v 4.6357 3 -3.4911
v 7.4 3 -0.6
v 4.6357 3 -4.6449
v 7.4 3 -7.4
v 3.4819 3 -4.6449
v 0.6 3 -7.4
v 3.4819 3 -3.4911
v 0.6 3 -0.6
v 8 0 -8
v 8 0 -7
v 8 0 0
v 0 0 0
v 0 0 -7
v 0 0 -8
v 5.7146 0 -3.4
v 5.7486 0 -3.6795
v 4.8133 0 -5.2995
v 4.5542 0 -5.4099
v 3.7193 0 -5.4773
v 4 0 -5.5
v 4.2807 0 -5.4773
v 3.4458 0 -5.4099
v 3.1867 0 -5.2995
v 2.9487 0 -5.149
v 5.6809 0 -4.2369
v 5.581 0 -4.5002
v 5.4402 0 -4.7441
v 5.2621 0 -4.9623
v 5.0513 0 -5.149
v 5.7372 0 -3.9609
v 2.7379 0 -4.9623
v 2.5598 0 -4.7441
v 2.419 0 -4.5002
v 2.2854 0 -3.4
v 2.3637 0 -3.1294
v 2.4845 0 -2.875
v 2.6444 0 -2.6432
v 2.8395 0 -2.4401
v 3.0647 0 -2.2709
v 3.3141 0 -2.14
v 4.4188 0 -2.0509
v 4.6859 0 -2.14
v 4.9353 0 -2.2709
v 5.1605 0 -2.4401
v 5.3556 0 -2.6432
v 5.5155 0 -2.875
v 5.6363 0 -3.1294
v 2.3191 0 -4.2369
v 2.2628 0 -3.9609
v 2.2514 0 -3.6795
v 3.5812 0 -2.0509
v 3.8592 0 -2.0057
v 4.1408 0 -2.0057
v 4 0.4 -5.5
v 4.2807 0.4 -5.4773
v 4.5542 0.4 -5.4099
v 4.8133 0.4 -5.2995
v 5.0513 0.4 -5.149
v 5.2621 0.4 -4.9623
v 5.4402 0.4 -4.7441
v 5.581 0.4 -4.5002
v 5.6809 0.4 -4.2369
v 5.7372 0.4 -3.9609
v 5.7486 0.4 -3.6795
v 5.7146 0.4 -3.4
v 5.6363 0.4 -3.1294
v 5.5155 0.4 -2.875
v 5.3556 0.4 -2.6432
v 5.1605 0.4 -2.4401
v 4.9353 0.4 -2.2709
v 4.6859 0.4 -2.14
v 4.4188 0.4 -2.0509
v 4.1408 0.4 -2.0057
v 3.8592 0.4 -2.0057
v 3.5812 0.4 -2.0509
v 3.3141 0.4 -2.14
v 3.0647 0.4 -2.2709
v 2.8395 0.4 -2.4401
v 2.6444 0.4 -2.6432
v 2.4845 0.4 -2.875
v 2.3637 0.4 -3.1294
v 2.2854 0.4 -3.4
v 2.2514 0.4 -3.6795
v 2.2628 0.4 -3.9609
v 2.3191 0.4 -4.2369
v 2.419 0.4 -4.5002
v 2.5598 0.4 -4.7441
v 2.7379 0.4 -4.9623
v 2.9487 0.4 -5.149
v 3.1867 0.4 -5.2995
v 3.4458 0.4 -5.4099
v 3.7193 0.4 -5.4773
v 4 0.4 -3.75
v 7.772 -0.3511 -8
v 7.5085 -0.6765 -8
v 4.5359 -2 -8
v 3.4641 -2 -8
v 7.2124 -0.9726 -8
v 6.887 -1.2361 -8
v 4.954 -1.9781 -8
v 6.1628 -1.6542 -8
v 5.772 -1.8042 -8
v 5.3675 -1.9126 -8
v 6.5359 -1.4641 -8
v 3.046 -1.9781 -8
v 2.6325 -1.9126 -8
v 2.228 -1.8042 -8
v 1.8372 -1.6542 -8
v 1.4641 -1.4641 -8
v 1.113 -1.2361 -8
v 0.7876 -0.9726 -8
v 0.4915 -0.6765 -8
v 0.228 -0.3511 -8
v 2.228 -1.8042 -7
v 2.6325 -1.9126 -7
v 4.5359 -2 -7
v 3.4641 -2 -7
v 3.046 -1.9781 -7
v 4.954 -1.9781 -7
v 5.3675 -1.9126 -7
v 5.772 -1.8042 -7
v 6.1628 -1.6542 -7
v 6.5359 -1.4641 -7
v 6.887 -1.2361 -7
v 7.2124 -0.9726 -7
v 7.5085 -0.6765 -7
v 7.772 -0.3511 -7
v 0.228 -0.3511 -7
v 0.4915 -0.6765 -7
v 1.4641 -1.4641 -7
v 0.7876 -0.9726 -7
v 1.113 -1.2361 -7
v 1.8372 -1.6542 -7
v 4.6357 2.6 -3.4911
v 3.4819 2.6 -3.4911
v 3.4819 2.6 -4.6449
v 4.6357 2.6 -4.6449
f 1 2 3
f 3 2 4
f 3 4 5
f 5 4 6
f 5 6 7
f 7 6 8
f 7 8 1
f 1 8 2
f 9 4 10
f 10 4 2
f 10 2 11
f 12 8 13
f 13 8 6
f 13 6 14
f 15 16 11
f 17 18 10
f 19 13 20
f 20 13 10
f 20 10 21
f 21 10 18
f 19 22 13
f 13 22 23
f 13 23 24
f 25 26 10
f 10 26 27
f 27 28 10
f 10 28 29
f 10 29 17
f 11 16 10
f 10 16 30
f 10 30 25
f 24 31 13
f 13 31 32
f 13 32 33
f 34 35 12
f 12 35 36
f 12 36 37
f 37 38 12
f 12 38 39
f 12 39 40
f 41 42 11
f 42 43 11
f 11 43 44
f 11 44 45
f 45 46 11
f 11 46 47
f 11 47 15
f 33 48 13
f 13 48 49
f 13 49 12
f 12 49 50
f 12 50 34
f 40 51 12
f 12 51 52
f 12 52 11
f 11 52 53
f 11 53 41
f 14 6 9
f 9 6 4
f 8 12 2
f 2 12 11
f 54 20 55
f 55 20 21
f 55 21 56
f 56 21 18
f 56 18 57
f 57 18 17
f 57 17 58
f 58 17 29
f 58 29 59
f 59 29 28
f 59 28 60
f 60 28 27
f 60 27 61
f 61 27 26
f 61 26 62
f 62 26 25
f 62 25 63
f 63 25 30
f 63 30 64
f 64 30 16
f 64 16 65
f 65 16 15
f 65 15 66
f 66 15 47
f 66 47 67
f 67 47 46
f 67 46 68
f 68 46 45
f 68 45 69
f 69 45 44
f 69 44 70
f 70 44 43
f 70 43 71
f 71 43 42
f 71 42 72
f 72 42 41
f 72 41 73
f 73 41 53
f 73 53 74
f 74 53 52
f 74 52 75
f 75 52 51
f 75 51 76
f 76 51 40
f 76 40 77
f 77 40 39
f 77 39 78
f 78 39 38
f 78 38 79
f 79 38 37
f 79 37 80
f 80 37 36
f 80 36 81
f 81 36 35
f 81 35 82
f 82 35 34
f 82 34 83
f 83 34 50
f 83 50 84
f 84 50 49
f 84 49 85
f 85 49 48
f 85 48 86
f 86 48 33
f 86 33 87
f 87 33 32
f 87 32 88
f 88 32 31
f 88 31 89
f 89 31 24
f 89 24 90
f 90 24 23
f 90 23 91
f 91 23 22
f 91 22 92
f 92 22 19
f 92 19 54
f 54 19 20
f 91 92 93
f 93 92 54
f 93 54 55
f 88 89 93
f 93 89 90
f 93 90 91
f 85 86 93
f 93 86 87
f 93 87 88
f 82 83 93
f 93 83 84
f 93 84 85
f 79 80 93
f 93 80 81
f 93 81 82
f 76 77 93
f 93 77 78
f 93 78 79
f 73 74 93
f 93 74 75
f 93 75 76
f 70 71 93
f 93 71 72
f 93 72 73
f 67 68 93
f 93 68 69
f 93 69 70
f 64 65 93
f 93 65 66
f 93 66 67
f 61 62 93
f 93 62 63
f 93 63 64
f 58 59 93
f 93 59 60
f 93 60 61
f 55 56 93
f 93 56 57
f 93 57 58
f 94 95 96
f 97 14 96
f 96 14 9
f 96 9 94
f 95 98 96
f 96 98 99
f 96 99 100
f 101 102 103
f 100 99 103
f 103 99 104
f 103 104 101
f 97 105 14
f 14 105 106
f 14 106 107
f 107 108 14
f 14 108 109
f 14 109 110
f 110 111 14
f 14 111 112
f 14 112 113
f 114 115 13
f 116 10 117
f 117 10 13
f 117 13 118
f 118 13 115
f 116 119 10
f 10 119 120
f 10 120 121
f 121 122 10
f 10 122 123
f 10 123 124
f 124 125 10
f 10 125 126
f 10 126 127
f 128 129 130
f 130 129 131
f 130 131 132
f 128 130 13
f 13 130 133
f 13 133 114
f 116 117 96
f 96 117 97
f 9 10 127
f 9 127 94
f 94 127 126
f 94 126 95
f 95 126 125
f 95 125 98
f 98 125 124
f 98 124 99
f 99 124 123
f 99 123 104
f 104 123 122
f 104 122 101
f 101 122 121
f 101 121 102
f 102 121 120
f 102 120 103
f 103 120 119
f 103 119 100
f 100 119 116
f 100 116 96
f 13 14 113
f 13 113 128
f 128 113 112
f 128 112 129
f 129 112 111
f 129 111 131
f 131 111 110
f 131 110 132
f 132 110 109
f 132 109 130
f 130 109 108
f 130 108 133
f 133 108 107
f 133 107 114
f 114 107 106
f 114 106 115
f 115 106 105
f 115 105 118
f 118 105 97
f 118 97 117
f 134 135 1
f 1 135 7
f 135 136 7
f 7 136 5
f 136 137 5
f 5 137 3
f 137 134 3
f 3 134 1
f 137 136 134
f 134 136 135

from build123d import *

# Parameters (mm, degrees)
SKETCH1_W               = 8
SKETCH1_H               = 8
BOSS_EXTRUDE1_DEPTH     = 3
CUT_EXTRUDE1_DEPTH      = 12.704699911
CUT_EXTRUDE1_DEPTH_BACK = 12.704699911
CUT_EXTRUDE2_DEPTH      = 11
SKETCH4_R               = 1.75
CUT_EXTRUDE3_DEPTH      = 0.4
SKETCH5_W               = 8
SKETCH5_H               = 1
BOSS_EXTRUDE2_DEPTH     = 2
FILLET1_R               = 4
SKETCH6_W               = 1.153846154
SKETCH6_H               = 1.153846154
CUT_EXTRUDE4_DEPTH      = 0.4


with BuildPart() as part:
    # Sketch1 → Boss-Extrude1 (new body)
    with BuildSketch(Plane(origin=(0, 0, 0), x_dir=(1, 0, 0), z_dir=(0, 1, 0))):
        with Locations((4, 4)):
            Rectangle(SKETCH1_W, SKETCH1_H)
    extrude(amount=BOSS_EXTRUDE1_DEPTH)

    # Sketch2 → Cut-Extrude1 (cut, two sides: drawn at the far end of the back side and taken through both)
    with BuildSketch(Plane.XY.offset(-CUT_EXTRUDE1_DEPTH_BACK)):
        Polygon((0, 0), (0.6, 3), (0, 3), align=None)
        Polygon((8, 0), (7.4, 3), (8, 3), align=None)
    extrude(amount=CUT_EXTRUDE1_DEPTH + CUT_EXTRUDE1_DEPTH_BACK, mode=Mode.SUBTRACT)

    # Sketch3 → Cut-Extrude2 (cut)
    with BuildSketch(Plane(origin=(0, 0, 0), x_dir=(0, 0, -1), z_dir=(1, 0, 0))):
        Polygon((0, 0), (0.6, 3), (0, 3), align=None)
        Polygon((8, 3), (7.4, 3), (8, 0), align=None)
    extrude(amount=CUT_EXTRUDE2_DEPTH, mode=Mode.SUBTRACT)

    # Sketch4 → Cut-Extrude3 (cut)
    with BuildSketch(Plane.XZ):
        with Locations(Location((4, -3.75, 0), (0, 0, 270))):
            Circle(SKETCH4_R)
    extrude(amount=-CUT_EXTRUDE3_DEPTH, mode=Mode.SUBTRACT)

    # Sketch5 → Boss-Extrude2 (add)
    with BuildSketch(Plane.XZ):
        with Locations((4, -7.5)):
            Rectangle(SKETCH5_W, SKETCH5_H)
    extrude(amount=BOSS_EXTRUDE2_DEPTH)

    # Fillet1
    # the kernel refuses this fillet: 4 mm, written as the material it takes off along each edge
    with BuildSketch(Plane(origin=(8, -2, -16.660254038), x_dir=(0, 1, 0), z_dir=(0, 0, 1)), Plane(origin=(0, -2, 1.660254038), x_dir=(0, 1, 0), z_dir=(0, 0, -1))) as fillet1_piece_1:
        with BuildLine():
            CenterArc((4, 3.464101615), FILLET1_R, 180, 60)
            Line((0, 3.464101615), (-0.08, 3.464101615))
            Line((-0.08, 3.464101615), (-0.08, 0))
            Line((-0.08, 0), (0, -0.08))
            ThreePointArc((0, -0.08), (1, -0.08), (1.96, -0.069282032))
            Line((1.96, -0.069282032), (2, 0))
        make_face()
    extrude(amount=18.320508076, mode=Mode.SUBTRACT)

    # Sketch6 → Cut-Extrude4 (cut)
    with BuildSketch(Plane(origin=(0, 3, 0), x_dir=(1, 0, 0), z_dir=(0, 1, 0))):
        with Locations((4.058809338, 4.067977948)):
            Rectangle(SKETCH6_W, SKETCH6_H)
    extrude(amount=-CUT_EXTRUDE4_DEPTH, mode=Mode.SUBTRACT)


solid = part.part
